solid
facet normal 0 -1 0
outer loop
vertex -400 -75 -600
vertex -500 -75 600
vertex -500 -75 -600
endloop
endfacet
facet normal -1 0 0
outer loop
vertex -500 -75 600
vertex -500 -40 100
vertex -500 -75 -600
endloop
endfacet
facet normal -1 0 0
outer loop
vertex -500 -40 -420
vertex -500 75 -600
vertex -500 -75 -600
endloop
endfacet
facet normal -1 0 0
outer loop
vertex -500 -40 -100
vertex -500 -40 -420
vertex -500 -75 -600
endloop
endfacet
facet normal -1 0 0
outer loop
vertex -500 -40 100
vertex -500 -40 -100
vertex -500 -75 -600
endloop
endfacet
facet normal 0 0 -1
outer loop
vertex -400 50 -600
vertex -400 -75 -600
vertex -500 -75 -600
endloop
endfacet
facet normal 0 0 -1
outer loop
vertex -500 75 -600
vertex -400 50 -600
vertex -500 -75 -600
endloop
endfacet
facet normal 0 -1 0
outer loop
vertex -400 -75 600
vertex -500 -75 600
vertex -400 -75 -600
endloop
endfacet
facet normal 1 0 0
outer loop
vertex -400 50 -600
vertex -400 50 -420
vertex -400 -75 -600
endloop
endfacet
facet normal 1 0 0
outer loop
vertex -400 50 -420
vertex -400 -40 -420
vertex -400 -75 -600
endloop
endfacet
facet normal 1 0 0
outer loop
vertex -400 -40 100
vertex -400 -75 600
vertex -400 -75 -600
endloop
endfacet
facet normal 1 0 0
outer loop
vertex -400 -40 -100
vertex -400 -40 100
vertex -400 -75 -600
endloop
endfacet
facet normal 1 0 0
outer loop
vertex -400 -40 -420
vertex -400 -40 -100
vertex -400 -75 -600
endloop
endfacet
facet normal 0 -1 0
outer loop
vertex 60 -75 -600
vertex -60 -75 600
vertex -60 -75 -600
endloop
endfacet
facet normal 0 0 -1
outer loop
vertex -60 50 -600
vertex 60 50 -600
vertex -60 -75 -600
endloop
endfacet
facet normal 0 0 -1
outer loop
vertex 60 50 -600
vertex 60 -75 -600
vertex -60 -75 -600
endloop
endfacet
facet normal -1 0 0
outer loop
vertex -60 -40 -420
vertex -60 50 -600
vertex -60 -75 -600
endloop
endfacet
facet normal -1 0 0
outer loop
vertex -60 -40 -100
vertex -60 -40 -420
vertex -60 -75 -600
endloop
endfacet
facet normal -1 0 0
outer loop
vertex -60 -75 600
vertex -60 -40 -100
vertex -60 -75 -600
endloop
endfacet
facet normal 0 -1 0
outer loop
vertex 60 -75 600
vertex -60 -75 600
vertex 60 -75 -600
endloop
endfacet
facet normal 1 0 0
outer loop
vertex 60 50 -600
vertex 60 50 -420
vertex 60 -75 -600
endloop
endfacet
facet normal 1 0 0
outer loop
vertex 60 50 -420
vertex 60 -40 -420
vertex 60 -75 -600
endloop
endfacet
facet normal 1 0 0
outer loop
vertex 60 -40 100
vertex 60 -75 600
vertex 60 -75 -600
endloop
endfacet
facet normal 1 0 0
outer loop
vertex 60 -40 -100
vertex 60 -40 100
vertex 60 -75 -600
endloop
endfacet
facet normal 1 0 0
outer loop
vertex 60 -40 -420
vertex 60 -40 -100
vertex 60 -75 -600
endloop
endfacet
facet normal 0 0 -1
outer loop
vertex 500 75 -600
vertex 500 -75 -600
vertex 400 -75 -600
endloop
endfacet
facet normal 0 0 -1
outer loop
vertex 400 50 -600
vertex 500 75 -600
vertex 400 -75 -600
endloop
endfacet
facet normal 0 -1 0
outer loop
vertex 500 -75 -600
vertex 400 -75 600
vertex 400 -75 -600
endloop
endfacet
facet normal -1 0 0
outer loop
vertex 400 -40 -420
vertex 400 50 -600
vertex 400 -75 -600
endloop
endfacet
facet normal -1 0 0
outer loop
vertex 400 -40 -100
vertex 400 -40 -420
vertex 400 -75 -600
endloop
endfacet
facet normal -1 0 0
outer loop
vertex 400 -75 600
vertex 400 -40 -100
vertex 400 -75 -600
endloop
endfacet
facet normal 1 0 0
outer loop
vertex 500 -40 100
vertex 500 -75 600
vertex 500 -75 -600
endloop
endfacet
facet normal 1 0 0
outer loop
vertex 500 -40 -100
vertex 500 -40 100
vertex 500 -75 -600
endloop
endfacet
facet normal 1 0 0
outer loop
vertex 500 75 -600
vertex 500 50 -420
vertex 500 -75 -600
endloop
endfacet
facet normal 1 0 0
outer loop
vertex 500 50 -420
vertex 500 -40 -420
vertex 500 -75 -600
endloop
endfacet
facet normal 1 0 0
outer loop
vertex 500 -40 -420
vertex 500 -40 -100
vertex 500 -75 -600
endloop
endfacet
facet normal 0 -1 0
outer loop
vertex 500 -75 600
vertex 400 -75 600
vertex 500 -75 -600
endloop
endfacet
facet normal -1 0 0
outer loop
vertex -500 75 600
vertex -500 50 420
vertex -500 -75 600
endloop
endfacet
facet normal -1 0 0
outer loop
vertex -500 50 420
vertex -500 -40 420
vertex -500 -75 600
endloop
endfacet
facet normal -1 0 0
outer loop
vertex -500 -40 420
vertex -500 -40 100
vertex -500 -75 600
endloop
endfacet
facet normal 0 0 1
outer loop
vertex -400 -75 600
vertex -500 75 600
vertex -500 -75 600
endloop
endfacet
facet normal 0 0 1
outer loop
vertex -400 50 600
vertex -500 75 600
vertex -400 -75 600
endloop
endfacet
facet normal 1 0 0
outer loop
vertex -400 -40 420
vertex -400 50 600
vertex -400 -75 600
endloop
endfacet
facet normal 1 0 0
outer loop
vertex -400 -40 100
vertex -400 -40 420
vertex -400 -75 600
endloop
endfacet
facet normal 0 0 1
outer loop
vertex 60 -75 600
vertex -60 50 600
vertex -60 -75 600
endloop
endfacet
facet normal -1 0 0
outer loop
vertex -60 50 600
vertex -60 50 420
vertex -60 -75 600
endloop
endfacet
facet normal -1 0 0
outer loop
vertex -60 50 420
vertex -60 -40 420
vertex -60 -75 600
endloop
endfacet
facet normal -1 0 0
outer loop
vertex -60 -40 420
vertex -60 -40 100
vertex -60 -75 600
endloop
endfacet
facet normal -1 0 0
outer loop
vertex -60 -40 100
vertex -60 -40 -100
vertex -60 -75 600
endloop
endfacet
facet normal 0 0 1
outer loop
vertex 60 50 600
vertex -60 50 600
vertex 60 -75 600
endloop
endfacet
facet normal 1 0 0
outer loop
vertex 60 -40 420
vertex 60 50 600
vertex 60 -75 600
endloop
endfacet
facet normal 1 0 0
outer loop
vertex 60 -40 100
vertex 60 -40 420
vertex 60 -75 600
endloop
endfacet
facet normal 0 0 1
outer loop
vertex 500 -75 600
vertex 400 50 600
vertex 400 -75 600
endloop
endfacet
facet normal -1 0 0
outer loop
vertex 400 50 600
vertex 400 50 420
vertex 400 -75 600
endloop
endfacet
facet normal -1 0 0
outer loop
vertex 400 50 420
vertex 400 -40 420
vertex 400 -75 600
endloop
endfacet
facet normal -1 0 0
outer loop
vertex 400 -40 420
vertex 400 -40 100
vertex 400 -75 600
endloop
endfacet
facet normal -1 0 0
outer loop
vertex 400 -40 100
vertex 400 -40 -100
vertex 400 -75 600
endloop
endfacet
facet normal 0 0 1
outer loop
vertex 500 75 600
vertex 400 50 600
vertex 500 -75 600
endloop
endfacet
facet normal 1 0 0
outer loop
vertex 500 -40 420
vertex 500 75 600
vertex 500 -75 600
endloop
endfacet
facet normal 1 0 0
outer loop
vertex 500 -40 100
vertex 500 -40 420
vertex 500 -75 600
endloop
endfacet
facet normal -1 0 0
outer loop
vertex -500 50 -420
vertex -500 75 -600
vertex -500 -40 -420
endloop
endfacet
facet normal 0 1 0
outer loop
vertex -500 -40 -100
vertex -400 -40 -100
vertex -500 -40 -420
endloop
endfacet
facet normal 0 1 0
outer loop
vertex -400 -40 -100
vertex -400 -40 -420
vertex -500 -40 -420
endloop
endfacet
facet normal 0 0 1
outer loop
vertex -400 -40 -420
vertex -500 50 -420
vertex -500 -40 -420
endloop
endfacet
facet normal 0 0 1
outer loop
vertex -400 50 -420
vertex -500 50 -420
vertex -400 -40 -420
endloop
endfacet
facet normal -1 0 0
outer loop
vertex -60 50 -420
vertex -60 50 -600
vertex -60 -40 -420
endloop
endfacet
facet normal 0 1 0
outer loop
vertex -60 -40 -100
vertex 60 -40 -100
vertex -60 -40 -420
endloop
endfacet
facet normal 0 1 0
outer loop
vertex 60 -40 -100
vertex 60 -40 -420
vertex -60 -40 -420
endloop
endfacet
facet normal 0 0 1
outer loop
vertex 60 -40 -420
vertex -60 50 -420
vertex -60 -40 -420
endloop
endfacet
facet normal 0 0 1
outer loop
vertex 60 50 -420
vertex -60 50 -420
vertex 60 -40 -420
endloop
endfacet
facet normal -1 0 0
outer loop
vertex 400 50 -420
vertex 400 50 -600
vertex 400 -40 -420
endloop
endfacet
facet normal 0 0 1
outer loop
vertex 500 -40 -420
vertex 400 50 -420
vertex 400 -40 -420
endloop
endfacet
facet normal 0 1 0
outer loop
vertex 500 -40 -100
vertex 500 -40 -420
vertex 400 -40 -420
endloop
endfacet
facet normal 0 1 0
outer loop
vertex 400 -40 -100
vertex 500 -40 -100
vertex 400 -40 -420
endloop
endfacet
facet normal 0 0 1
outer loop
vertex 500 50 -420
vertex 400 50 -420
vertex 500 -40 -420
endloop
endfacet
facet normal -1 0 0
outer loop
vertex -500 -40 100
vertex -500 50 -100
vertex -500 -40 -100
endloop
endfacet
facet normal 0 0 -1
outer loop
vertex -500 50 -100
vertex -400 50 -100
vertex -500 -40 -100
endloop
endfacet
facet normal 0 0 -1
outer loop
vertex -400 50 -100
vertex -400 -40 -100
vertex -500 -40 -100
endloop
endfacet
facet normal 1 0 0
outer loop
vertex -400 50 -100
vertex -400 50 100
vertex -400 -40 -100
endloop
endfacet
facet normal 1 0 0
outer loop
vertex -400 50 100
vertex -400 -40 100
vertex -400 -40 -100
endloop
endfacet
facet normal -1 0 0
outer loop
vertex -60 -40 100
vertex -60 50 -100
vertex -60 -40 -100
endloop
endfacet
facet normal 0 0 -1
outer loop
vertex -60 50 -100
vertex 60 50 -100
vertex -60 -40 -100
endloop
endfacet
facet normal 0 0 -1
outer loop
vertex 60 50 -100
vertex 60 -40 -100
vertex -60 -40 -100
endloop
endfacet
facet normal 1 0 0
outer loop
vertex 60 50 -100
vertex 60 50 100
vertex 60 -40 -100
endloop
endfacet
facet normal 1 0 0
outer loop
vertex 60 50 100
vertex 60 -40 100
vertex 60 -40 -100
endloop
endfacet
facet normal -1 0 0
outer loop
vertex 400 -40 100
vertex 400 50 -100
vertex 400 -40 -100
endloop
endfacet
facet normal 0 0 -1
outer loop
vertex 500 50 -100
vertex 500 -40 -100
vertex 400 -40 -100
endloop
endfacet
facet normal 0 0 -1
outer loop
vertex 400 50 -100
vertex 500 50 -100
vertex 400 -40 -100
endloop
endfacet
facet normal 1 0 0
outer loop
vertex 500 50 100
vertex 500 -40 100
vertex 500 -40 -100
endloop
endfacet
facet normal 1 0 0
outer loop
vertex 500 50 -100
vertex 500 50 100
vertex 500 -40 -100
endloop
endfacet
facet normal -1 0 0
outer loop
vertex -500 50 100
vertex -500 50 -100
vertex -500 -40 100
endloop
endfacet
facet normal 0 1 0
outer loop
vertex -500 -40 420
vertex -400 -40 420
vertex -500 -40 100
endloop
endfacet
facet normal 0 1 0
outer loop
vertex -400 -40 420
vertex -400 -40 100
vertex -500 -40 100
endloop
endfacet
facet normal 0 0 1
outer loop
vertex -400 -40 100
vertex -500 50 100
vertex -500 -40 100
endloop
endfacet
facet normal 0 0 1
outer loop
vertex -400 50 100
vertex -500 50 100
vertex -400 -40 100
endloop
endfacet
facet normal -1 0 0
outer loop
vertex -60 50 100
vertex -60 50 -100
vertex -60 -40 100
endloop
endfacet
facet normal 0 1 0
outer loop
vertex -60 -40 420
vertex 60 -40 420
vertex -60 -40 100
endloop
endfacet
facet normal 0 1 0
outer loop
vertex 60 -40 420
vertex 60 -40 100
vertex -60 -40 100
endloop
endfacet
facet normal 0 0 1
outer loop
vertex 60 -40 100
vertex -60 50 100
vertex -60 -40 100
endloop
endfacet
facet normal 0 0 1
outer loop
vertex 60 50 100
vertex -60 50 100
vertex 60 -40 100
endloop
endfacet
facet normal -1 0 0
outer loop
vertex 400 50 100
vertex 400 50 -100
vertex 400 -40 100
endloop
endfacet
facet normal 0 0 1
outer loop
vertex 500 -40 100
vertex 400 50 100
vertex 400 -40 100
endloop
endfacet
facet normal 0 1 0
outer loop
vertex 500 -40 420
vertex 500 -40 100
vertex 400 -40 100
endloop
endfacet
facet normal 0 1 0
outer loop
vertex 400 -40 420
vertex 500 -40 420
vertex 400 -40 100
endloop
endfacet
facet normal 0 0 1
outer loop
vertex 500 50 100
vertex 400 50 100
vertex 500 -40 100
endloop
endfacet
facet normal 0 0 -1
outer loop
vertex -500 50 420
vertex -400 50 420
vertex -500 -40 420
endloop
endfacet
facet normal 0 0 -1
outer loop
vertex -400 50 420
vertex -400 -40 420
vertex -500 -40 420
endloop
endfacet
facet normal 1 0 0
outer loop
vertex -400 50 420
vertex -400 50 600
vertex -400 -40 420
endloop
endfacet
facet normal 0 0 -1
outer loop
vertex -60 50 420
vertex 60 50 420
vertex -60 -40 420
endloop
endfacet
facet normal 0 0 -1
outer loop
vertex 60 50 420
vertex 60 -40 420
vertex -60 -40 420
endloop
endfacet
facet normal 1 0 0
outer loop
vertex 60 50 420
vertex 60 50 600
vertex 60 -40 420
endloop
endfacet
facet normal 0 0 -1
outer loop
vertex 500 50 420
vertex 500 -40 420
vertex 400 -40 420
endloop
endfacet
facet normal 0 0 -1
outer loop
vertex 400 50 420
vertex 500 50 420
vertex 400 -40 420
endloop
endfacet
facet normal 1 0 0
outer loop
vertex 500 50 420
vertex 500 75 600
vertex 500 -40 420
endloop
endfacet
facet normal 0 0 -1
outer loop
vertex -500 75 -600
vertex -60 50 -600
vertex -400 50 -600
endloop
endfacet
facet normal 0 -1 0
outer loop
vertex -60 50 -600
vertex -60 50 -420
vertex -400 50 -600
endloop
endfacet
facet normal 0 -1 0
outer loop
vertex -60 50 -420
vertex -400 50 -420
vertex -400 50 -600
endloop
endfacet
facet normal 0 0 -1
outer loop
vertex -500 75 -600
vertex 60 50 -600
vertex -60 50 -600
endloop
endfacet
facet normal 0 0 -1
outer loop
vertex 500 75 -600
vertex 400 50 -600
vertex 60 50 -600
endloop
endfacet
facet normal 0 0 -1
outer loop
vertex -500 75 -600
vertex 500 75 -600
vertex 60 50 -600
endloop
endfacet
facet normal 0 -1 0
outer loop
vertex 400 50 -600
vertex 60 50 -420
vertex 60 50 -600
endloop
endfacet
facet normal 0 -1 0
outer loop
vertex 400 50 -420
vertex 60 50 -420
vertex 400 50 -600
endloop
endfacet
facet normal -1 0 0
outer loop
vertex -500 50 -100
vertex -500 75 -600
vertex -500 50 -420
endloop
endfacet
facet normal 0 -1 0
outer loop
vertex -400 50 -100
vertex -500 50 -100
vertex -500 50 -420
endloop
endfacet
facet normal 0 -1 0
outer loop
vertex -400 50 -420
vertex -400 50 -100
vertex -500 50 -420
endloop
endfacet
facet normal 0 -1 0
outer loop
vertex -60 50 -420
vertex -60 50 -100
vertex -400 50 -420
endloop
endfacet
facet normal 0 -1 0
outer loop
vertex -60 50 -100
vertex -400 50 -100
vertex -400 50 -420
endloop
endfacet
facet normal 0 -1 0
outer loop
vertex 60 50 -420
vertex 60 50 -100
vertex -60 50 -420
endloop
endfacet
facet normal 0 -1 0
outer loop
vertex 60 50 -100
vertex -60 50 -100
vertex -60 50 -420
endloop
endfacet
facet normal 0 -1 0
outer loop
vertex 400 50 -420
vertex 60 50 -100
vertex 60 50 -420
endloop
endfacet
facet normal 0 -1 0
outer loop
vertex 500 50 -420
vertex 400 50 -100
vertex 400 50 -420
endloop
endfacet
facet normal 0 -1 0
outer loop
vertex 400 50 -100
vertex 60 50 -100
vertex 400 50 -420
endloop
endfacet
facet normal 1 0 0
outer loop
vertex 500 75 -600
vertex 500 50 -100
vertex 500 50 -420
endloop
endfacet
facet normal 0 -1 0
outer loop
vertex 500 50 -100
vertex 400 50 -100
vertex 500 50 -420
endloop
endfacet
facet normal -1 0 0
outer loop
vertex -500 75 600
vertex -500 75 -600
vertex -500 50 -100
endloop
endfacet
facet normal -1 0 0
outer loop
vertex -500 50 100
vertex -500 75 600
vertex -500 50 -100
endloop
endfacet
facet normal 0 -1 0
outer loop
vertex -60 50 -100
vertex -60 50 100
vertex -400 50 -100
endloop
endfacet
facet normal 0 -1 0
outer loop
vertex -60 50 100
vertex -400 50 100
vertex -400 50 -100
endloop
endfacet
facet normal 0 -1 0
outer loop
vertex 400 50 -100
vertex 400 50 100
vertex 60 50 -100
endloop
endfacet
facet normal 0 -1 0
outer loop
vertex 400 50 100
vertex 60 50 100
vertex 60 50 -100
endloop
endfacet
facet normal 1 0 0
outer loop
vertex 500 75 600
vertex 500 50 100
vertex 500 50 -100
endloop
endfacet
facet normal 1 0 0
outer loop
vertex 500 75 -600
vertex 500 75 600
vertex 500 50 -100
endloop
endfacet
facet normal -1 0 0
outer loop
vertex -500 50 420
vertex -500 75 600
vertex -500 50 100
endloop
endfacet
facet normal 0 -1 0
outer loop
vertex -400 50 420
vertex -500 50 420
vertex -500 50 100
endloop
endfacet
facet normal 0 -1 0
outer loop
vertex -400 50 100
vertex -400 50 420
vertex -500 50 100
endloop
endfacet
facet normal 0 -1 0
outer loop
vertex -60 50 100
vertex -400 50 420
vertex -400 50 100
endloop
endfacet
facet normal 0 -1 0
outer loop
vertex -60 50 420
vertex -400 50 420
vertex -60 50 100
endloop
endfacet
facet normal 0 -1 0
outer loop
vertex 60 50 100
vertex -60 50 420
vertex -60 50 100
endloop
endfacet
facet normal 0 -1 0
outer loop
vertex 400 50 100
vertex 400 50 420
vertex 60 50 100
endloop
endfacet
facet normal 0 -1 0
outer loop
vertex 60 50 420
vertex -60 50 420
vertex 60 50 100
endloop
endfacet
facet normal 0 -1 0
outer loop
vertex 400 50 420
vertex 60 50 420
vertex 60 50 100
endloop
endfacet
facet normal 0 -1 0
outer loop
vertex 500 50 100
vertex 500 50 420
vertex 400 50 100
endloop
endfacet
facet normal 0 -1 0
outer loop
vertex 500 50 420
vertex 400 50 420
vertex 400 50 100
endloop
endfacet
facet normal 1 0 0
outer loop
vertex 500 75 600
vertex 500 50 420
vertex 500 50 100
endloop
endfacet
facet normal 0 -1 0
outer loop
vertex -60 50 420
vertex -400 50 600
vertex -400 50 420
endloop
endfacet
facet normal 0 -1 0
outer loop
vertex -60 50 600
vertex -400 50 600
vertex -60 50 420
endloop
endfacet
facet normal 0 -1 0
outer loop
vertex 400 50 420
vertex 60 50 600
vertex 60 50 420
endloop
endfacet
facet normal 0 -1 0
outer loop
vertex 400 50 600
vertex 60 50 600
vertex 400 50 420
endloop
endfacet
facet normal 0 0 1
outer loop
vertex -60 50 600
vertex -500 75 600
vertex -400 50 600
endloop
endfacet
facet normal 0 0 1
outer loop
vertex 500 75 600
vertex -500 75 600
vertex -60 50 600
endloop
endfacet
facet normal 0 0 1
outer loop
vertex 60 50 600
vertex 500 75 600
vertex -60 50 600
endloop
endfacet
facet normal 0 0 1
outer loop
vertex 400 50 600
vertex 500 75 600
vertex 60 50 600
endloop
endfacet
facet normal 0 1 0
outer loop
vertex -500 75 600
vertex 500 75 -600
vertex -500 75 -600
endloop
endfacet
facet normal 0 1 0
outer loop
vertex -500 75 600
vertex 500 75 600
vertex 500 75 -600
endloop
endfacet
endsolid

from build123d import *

# Parameters (mm, degrees)
SKETCH_1_W          = 1000
SKETCH_1_H          = 1200
EXTRUDE_1_DEPTH     = 75
CUT_EXTRUDE_1_REACH = 1304.162
SKETCH_2_W          = 340
SKETCH_2_H          = 125
SKETCH_3_W          = 320
SKETCH_3_H          = 90
CUT_EXTRUDE_2_DEPTH = 1169.599589252


with BuildPart() as part:
    # 草图1 → 凸台-拉伸1 (new, symmetric)
    with BuildSketch(Plane(origin=(0, 0, 0), x_dir=(1, 0, 0), z_dir=(0, 1, 0))):
        Rectangle(SKETCH_1_W, SKETCH_1_H)
    extrude(amount=EXTRUDE_1_DEPTH, both=True)

    # 草图2 → 切除-拉伸1 (cut, up to next)
    with BuildSketch(Plane.XY.offset(600), mode=Mode.PRIVATE) as cut_extrude_1_sk1:
        with Locations((-230, -12.5)):
            Rectangle(SKETCH_2_W, SKETCH_2_H)
    cut_extrude_1_tool1 = extrude(cut_extrude_1_sk1.sketch, amount=-CUT_EXTRUDE_1_REACH, mode=Mode.PRIVATE) & part.part
    # 草图2 → 切除-拉伸1 (cut, up to next)
    with BuildSketch(Plane.XY.offset(600), mode=Mode.PRIVATE) as cut_extrude_1_sk2:
        with Locations((230, -12.5)):
            Rectangle(SKETCH_2_W, SKETCH_2_H)
    cut_extrude_1_tool2 = extrude(cut_extrude_1_sk2.sketch, amount=-CUT_EXTRUDE_1_REACH, mode=Mode.PRIVATE) & part.part
    add(cut_extrude_1_tool1.solids().sort_by_distance((-230, -12.5, 600))[0], mode=Mode.SUBTRACT)
    add(cut_extrude_1_tool2.solids().sort_by_distance((230, -12.5, 600))[0], mode=Mode.SUBTRACT)

    # 草图3 → 切除-拉伸2 (cut, through all)
    with BuildSketch(Plane.ZY.offset(500)):
        with Locations((260, 5)):
            Rectangle(SKETCH_3_W, SKETCH_3_H)
        with Locations((-260, 5)):
            Rectangle(SKETCH_3_W, SKETCH_3_H)
    extrude(amount=-CUT_EXTRUDE_2_DEPTH, mode=Mode.SUBTRACT)


solid = part.part
